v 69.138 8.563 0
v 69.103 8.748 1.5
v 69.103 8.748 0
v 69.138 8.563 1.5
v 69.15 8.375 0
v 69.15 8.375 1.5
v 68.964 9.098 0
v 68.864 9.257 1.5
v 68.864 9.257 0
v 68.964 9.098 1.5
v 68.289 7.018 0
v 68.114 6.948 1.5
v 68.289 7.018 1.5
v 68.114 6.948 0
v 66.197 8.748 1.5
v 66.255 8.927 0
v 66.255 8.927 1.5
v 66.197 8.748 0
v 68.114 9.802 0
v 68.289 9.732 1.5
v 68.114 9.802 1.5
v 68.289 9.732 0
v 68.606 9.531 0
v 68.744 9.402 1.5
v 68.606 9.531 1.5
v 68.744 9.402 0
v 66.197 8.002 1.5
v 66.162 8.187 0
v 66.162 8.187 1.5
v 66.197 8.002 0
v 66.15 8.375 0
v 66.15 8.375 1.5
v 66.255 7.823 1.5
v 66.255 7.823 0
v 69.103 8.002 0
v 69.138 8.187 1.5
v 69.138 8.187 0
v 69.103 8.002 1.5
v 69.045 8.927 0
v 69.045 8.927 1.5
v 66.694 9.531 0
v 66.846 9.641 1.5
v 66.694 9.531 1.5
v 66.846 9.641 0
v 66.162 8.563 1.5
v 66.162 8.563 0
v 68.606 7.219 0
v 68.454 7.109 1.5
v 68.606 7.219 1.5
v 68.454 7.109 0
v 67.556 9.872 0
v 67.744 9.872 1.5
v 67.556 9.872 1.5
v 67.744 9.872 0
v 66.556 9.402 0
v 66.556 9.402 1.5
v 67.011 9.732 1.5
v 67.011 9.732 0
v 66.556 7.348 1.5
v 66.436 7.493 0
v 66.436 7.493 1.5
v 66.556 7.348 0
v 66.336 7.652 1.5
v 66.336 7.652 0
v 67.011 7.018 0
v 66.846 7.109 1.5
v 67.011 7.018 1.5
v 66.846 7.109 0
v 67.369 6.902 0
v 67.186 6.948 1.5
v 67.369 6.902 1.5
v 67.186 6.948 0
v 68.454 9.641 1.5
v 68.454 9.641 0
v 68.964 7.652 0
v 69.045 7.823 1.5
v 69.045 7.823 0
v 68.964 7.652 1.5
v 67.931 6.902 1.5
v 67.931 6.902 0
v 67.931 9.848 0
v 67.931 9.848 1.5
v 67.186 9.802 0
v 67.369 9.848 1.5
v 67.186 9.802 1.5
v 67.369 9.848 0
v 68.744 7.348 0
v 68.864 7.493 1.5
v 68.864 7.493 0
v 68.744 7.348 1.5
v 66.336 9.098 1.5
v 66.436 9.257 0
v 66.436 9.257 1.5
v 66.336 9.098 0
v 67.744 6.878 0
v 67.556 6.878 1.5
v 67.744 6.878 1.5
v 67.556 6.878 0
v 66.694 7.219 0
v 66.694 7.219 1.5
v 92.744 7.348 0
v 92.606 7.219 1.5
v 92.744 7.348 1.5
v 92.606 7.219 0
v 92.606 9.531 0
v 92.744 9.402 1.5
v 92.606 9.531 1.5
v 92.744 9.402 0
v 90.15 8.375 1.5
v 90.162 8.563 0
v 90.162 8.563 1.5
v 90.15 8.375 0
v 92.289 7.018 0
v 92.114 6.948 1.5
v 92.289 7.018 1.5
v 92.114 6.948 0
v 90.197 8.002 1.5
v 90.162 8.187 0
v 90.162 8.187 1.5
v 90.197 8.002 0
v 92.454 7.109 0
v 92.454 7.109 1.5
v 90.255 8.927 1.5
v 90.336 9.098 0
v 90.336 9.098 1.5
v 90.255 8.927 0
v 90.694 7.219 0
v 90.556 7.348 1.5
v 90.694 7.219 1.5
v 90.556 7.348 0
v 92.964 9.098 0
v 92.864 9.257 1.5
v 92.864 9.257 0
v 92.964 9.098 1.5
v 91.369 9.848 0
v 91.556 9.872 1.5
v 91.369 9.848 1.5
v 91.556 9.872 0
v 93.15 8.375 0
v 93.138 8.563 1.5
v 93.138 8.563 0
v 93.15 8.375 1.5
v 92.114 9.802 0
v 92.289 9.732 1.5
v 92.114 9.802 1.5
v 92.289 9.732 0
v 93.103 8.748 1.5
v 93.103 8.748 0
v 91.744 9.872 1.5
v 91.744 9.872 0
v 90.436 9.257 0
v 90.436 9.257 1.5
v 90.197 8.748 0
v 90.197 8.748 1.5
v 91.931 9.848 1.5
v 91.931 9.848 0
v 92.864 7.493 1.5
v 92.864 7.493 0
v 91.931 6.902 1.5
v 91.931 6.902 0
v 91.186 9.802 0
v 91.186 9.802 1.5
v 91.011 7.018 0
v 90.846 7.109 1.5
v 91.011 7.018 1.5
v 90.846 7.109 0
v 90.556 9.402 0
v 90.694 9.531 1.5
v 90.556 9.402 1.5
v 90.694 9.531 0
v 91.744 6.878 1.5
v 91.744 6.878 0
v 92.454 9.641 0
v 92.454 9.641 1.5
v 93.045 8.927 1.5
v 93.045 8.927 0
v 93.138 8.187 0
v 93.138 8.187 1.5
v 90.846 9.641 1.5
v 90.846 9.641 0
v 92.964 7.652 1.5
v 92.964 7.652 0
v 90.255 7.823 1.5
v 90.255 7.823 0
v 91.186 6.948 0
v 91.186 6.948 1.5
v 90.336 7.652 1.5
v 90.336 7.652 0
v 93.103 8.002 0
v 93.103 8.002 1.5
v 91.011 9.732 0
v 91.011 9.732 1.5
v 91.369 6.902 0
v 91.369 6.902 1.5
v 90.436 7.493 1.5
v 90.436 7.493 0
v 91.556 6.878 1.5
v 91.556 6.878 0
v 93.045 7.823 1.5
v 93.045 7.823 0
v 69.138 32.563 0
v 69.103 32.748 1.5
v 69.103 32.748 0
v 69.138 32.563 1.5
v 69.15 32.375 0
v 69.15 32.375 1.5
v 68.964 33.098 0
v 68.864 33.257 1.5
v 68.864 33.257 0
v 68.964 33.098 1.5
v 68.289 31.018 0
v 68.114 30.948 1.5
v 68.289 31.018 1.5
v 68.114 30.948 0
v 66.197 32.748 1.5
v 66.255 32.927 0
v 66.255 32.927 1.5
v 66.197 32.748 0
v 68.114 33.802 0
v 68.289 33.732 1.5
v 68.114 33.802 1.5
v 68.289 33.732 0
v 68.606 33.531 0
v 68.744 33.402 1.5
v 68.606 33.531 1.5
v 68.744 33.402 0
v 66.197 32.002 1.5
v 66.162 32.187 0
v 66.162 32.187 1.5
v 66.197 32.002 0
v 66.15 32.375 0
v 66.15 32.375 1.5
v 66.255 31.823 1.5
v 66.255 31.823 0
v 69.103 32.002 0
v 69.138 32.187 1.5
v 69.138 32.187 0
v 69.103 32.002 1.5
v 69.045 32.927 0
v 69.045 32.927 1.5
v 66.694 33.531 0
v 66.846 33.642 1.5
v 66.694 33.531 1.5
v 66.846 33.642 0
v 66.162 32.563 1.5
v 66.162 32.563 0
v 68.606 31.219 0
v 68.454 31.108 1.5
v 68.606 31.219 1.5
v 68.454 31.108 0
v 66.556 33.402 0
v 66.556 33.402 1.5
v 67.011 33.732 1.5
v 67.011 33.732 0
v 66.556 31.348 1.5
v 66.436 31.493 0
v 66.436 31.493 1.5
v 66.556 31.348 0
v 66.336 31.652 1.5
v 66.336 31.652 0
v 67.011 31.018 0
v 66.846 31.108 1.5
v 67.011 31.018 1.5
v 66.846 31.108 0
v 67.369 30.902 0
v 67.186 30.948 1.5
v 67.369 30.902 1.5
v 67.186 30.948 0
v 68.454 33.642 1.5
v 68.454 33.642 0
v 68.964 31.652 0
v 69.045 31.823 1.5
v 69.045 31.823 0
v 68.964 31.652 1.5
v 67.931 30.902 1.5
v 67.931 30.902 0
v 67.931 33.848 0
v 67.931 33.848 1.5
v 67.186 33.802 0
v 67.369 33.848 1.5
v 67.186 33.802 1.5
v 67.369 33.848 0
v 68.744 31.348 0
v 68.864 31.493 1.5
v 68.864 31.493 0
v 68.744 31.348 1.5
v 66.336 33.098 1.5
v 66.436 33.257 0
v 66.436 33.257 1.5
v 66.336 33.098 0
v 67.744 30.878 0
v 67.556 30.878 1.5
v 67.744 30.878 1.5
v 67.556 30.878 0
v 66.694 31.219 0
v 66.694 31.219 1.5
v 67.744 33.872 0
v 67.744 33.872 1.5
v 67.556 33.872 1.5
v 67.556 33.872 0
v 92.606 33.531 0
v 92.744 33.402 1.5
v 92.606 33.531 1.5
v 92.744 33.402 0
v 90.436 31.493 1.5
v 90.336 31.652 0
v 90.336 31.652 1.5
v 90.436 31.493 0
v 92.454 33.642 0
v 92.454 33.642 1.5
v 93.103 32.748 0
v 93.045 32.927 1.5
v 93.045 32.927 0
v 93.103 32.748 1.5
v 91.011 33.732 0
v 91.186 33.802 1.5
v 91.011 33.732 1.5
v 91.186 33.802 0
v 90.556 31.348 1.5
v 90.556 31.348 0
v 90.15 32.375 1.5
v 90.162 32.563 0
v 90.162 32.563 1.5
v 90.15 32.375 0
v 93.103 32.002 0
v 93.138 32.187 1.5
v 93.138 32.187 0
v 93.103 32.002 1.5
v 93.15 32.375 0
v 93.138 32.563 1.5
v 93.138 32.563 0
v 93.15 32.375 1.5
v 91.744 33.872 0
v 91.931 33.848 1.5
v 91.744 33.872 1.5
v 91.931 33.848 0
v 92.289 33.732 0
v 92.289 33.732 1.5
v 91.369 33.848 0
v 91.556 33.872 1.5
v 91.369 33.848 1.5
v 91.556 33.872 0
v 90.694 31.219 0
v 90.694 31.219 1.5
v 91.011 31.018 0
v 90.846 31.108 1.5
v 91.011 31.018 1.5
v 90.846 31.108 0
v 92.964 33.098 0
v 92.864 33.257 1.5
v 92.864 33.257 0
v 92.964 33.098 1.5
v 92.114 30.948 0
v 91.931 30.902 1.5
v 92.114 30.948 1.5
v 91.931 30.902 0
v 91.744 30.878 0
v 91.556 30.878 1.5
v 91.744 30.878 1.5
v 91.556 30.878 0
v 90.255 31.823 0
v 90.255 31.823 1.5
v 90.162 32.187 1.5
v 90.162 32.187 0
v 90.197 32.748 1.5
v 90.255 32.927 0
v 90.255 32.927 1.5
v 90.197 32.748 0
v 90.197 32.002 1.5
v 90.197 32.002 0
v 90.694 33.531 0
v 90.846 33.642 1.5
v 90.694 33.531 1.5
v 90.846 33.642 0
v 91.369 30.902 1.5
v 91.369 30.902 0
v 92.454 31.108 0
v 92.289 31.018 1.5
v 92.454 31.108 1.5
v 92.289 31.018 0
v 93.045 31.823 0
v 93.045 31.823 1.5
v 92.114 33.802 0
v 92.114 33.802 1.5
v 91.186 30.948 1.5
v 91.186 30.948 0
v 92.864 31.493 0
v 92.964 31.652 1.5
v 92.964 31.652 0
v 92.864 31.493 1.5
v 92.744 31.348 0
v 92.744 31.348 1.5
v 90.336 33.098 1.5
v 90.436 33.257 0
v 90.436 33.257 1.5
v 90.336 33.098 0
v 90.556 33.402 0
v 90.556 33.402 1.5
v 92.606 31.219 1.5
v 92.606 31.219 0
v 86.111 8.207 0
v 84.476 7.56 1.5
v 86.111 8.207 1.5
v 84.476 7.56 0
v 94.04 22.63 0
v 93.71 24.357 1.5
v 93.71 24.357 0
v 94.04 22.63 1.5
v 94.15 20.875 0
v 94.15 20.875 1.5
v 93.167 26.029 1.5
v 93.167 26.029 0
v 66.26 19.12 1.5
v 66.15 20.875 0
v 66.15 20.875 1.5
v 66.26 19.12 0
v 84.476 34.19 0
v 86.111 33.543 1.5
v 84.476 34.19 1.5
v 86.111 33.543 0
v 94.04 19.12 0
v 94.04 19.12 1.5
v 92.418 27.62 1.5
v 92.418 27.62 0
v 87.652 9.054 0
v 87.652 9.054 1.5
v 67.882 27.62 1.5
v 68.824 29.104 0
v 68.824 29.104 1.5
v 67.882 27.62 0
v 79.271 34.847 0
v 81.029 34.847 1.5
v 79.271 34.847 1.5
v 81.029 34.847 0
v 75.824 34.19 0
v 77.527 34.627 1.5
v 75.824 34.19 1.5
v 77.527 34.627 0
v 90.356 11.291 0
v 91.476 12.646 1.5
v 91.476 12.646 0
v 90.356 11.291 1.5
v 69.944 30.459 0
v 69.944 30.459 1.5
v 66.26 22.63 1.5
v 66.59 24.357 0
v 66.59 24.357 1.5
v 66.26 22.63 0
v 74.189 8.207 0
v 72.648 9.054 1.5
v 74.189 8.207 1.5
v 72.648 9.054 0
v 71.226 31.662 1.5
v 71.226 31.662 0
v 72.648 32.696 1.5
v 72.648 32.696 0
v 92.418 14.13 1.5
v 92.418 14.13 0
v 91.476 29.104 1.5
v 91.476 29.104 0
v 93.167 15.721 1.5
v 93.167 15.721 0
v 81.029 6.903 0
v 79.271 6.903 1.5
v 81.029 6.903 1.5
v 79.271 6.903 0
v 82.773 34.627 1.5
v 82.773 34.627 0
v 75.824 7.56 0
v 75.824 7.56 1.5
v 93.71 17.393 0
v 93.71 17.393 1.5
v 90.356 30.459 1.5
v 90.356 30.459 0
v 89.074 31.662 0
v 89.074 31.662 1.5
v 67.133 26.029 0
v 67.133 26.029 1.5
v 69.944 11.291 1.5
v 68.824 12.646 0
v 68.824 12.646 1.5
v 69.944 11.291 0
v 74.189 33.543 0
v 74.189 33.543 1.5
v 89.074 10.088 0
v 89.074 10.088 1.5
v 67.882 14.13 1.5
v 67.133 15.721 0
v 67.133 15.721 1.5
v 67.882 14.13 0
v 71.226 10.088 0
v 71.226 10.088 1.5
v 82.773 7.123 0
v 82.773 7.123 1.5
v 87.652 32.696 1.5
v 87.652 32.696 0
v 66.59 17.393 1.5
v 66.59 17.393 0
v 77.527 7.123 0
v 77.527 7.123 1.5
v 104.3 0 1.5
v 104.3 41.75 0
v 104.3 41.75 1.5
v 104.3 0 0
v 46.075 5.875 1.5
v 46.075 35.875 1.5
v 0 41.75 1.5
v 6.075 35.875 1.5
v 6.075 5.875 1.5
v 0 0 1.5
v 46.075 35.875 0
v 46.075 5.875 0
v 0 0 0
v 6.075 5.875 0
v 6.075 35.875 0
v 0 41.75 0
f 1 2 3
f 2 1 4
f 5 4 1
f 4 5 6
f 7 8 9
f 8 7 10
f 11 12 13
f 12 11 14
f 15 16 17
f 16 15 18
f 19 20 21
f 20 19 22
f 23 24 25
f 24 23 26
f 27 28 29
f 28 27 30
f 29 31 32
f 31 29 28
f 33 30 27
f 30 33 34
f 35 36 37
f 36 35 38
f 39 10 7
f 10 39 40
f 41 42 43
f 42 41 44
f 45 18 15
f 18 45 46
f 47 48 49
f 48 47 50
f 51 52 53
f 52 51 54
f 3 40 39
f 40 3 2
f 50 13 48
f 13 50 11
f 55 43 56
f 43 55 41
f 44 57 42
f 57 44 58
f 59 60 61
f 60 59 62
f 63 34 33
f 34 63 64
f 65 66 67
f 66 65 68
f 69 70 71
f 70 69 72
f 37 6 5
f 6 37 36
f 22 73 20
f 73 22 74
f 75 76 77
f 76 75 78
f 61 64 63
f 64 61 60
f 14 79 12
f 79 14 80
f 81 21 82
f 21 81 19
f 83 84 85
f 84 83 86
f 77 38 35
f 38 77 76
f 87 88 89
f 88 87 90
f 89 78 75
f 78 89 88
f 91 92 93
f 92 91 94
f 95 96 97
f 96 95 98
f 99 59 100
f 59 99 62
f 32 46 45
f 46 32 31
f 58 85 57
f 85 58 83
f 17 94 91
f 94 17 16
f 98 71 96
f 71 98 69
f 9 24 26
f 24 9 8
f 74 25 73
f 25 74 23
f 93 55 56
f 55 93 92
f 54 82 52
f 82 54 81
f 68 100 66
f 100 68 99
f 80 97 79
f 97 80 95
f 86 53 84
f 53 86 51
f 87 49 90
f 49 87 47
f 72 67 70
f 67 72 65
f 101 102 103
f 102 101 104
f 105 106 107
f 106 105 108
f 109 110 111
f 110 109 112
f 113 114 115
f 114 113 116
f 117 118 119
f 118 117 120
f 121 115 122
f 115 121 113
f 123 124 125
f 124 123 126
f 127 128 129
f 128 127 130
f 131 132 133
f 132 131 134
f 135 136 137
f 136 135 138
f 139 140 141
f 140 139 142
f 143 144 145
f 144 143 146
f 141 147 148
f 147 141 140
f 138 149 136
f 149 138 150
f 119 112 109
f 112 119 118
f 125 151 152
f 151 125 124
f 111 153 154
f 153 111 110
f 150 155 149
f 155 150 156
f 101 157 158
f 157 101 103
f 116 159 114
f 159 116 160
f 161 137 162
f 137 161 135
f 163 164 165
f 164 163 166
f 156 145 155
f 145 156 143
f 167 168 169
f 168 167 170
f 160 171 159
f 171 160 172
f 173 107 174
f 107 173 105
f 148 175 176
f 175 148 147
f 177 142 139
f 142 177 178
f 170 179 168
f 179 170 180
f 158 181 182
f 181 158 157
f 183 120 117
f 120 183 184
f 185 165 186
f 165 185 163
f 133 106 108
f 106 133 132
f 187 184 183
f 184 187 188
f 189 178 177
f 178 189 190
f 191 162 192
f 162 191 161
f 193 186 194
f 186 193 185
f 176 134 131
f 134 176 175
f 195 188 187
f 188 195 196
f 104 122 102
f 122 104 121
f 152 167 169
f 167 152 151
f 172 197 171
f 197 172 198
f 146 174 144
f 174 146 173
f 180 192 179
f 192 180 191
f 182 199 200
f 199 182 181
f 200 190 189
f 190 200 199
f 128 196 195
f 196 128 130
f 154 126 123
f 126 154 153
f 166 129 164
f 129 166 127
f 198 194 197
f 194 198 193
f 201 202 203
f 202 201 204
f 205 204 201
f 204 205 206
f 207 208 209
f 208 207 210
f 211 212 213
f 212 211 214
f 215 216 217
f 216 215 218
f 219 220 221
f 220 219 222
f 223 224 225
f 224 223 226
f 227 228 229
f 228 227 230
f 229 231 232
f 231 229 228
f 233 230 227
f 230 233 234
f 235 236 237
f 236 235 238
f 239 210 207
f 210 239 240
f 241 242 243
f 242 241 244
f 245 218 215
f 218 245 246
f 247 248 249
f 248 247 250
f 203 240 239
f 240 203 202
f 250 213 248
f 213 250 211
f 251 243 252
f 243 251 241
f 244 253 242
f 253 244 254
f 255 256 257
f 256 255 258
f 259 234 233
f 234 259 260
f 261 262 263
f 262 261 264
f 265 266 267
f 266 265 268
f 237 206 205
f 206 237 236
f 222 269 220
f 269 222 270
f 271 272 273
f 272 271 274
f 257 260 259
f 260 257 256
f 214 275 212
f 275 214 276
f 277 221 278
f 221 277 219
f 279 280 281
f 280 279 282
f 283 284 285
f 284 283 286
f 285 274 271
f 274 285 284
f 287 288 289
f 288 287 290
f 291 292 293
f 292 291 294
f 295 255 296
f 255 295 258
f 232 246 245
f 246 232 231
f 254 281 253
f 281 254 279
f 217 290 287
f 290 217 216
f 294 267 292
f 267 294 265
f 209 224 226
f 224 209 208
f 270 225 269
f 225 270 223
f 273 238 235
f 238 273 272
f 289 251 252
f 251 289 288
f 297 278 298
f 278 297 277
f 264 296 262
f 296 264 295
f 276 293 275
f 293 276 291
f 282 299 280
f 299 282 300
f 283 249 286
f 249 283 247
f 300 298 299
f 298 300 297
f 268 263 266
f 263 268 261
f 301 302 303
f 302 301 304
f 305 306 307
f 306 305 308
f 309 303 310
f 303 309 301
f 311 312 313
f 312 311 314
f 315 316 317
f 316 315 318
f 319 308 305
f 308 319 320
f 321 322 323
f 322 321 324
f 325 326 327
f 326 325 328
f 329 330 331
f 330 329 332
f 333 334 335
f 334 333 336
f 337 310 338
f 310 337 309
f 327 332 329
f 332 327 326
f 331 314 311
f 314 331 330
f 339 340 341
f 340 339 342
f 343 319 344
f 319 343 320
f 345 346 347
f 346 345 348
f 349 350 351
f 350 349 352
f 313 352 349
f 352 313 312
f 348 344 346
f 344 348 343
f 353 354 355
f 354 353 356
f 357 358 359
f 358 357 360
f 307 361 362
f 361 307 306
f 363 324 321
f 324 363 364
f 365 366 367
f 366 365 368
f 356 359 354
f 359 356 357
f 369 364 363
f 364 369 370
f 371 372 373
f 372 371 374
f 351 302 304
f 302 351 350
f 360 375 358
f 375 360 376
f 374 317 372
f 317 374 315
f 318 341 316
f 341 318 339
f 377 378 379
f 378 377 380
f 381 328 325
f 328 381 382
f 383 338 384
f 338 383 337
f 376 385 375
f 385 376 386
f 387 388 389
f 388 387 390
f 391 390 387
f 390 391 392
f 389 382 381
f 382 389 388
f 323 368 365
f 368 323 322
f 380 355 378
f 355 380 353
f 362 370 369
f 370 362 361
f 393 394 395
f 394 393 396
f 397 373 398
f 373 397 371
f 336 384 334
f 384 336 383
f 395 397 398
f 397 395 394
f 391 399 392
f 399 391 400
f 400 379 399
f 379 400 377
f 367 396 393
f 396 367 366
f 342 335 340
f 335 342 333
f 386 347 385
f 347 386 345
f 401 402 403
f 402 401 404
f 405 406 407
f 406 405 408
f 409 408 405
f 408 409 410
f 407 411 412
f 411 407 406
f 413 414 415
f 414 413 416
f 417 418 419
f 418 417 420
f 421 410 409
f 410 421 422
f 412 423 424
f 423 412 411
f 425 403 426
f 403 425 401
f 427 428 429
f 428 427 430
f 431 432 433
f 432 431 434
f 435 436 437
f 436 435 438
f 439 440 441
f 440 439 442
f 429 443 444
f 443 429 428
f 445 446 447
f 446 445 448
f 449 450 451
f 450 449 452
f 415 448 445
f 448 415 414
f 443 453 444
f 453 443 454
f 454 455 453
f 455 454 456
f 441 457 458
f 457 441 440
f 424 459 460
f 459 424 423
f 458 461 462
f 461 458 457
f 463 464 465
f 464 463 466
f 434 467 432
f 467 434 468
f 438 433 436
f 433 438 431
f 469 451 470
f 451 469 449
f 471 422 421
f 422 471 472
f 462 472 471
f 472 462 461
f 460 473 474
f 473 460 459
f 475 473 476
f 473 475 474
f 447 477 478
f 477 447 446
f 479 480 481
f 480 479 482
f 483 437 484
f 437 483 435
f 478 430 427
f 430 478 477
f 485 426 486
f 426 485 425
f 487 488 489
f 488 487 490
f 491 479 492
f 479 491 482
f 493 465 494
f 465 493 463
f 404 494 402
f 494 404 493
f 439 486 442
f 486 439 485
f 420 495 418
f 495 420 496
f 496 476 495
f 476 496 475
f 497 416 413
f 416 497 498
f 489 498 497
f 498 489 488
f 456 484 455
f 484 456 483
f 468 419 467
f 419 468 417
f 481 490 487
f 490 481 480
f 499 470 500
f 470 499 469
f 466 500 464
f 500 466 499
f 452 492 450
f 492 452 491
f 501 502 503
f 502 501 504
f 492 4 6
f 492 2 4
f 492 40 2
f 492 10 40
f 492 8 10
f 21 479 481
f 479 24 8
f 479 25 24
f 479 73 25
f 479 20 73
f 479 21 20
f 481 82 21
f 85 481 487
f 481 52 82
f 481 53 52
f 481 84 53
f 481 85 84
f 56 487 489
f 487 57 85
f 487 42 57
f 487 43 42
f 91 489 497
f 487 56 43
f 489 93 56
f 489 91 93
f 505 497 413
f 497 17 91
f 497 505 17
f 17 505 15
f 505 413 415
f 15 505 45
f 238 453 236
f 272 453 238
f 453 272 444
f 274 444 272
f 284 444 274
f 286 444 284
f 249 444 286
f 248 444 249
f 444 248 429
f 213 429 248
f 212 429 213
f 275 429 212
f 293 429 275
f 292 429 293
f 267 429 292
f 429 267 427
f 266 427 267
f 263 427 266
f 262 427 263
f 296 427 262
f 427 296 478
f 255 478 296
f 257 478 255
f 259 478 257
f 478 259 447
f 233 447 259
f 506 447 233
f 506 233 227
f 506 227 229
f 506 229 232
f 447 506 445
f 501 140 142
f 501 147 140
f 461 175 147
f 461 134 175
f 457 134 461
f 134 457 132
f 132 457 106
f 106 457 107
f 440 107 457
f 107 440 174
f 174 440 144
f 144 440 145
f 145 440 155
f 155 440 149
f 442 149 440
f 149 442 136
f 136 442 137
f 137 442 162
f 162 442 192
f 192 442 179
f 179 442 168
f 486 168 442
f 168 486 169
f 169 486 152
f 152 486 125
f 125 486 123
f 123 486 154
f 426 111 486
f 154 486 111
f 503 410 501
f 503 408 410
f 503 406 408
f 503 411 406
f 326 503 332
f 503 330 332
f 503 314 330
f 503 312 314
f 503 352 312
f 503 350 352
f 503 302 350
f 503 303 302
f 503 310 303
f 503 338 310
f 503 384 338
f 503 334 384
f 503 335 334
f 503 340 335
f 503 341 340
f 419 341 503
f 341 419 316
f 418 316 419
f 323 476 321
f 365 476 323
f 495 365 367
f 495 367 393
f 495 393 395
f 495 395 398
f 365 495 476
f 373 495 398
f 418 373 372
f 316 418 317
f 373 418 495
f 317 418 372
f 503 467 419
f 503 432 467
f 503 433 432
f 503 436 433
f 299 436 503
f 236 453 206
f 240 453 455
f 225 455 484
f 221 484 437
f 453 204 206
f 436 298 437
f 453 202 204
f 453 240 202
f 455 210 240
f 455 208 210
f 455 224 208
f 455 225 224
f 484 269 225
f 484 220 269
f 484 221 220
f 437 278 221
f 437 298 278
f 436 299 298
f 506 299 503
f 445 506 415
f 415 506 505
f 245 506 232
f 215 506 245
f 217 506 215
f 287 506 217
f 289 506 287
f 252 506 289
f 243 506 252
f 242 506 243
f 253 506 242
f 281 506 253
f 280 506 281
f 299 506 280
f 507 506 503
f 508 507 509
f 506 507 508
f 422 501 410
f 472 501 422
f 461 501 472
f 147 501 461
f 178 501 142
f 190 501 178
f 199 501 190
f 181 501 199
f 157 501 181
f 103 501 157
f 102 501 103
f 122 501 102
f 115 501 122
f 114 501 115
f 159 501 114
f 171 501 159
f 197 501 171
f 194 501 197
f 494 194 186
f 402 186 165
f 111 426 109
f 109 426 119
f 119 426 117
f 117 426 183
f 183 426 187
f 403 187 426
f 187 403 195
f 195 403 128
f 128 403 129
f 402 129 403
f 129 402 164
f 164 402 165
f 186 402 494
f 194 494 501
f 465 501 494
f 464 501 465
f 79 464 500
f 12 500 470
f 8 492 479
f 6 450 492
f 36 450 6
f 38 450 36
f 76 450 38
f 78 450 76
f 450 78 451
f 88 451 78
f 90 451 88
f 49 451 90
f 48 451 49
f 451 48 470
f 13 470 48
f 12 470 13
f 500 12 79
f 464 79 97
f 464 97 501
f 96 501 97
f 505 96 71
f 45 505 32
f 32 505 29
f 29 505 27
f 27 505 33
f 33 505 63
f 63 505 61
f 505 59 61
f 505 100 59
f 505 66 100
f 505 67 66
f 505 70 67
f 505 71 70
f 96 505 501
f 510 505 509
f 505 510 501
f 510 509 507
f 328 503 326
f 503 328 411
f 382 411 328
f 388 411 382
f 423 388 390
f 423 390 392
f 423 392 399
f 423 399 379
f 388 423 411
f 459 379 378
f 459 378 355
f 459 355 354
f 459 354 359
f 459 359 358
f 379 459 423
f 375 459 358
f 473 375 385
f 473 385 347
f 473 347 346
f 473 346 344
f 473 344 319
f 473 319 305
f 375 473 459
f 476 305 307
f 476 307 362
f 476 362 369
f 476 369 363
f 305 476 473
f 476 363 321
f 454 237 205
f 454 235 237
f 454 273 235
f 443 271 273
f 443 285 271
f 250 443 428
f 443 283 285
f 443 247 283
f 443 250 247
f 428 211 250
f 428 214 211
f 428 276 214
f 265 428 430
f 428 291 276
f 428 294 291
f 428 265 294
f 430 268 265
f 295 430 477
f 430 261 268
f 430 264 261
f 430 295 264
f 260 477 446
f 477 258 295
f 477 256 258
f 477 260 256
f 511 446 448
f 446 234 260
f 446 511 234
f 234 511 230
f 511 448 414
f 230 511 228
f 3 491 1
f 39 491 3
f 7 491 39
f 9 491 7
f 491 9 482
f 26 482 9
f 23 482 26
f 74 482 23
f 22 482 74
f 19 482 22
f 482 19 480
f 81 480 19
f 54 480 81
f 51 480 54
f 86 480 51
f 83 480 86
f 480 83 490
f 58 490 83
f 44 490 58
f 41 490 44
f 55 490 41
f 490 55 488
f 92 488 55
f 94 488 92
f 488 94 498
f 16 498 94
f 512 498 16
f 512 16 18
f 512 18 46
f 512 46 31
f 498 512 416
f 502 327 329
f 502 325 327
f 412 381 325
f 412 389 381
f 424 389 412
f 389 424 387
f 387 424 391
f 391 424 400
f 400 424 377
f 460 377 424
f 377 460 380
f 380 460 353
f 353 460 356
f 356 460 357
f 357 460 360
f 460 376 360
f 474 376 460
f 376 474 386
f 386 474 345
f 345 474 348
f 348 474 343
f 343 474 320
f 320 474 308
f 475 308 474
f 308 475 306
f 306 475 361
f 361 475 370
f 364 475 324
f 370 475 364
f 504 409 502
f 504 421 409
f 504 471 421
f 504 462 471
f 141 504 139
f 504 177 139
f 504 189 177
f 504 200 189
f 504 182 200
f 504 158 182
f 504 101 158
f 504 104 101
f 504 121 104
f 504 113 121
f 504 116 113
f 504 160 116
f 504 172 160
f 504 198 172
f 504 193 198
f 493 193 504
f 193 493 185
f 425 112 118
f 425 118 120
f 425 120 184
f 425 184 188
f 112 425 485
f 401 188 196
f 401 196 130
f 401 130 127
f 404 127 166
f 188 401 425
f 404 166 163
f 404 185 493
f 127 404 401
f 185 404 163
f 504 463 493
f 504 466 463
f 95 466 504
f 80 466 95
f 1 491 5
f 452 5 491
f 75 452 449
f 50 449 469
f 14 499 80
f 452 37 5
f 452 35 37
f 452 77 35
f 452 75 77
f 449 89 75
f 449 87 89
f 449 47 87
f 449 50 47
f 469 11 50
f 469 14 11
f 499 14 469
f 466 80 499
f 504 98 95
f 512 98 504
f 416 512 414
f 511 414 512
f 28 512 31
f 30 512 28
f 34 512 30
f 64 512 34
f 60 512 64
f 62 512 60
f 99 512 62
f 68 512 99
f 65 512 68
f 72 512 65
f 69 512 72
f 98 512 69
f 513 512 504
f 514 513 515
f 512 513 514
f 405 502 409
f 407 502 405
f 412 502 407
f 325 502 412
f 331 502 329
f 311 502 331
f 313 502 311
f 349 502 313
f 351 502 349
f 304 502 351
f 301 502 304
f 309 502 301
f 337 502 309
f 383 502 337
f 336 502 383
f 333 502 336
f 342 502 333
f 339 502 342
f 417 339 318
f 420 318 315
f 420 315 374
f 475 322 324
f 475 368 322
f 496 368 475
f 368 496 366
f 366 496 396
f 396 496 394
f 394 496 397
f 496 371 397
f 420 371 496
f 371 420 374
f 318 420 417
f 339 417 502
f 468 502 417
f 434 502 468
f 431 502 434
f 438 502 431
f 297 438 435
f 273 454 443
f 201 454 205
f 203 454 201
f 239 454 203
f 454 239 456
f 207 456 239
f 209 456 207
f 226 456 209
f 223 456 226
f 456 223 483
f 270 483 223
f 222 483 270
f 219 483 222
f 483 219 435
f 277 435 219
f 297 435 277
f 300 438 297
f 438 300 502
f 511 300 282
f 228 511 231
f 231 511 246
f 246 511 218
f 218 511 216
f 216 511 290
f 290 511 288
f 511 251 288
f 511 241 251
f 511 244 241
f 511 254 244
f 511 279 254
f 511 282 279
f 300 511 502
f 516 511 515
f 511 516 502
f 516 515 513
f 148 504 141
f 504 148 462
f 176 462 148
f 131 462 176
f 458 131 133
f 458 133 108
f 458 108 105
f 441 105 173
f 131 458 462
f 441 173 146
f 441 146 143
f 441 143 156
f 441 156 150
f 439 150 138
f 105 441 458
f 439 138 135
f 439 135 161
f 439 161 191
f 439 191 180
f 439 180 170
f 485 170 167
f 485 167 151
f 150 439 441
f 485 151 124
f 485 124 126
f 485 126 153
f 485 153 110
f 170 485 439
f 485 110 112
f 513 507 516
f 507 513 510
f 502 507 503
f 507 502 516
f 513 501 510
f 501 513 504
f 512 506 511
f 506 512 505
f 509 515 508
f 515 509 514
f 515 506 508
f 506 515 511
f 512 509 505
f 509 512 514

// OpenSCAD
$fn = 50;

// plate
length = 104.3;
width = 41.75;
height = 1.5;

// fan
screw = 3.0;
distance = 24.0;
fan = 28.0;

// intake
ilength = 40.0;
iwidth = 30.0;

difference() {

     // base
     cube([length, width, height], center=false);

     // fan
     translate([(length/2) + (fan/2), (width/2) - (fan/2), 0]) {
          union() {
               translate([(screw/2), (screw/2), -1]) {
                    cylinder(h=3, d=screw, center=false);
               }
               translate([(screw/2)+distance, (screw/2), -1]) {
                    cylinder(h=3, d=screw, center=false);
               }
               translate([(screw/2), (screw/2)+distance, -1]) {
                    cylinder(h=3, d=screw, center=false);
               }
               translate([(screw/2)+distance, (screw/2)+distance, -1]) {
                    cylinder(h=3, d=screw, center=false);
               }
               translate([(fan/2), (fan/2), -1]) {
                    cylinder(h=3, d=fan, center=false);
               }
          }
     }

     // intake
     translate([((length/2)-ilength)/2, (width/2) - (iwidth/2), -1]) {
          union() {
               cube([ilength, iwidth, 3], center=false);
          }
     }

}
